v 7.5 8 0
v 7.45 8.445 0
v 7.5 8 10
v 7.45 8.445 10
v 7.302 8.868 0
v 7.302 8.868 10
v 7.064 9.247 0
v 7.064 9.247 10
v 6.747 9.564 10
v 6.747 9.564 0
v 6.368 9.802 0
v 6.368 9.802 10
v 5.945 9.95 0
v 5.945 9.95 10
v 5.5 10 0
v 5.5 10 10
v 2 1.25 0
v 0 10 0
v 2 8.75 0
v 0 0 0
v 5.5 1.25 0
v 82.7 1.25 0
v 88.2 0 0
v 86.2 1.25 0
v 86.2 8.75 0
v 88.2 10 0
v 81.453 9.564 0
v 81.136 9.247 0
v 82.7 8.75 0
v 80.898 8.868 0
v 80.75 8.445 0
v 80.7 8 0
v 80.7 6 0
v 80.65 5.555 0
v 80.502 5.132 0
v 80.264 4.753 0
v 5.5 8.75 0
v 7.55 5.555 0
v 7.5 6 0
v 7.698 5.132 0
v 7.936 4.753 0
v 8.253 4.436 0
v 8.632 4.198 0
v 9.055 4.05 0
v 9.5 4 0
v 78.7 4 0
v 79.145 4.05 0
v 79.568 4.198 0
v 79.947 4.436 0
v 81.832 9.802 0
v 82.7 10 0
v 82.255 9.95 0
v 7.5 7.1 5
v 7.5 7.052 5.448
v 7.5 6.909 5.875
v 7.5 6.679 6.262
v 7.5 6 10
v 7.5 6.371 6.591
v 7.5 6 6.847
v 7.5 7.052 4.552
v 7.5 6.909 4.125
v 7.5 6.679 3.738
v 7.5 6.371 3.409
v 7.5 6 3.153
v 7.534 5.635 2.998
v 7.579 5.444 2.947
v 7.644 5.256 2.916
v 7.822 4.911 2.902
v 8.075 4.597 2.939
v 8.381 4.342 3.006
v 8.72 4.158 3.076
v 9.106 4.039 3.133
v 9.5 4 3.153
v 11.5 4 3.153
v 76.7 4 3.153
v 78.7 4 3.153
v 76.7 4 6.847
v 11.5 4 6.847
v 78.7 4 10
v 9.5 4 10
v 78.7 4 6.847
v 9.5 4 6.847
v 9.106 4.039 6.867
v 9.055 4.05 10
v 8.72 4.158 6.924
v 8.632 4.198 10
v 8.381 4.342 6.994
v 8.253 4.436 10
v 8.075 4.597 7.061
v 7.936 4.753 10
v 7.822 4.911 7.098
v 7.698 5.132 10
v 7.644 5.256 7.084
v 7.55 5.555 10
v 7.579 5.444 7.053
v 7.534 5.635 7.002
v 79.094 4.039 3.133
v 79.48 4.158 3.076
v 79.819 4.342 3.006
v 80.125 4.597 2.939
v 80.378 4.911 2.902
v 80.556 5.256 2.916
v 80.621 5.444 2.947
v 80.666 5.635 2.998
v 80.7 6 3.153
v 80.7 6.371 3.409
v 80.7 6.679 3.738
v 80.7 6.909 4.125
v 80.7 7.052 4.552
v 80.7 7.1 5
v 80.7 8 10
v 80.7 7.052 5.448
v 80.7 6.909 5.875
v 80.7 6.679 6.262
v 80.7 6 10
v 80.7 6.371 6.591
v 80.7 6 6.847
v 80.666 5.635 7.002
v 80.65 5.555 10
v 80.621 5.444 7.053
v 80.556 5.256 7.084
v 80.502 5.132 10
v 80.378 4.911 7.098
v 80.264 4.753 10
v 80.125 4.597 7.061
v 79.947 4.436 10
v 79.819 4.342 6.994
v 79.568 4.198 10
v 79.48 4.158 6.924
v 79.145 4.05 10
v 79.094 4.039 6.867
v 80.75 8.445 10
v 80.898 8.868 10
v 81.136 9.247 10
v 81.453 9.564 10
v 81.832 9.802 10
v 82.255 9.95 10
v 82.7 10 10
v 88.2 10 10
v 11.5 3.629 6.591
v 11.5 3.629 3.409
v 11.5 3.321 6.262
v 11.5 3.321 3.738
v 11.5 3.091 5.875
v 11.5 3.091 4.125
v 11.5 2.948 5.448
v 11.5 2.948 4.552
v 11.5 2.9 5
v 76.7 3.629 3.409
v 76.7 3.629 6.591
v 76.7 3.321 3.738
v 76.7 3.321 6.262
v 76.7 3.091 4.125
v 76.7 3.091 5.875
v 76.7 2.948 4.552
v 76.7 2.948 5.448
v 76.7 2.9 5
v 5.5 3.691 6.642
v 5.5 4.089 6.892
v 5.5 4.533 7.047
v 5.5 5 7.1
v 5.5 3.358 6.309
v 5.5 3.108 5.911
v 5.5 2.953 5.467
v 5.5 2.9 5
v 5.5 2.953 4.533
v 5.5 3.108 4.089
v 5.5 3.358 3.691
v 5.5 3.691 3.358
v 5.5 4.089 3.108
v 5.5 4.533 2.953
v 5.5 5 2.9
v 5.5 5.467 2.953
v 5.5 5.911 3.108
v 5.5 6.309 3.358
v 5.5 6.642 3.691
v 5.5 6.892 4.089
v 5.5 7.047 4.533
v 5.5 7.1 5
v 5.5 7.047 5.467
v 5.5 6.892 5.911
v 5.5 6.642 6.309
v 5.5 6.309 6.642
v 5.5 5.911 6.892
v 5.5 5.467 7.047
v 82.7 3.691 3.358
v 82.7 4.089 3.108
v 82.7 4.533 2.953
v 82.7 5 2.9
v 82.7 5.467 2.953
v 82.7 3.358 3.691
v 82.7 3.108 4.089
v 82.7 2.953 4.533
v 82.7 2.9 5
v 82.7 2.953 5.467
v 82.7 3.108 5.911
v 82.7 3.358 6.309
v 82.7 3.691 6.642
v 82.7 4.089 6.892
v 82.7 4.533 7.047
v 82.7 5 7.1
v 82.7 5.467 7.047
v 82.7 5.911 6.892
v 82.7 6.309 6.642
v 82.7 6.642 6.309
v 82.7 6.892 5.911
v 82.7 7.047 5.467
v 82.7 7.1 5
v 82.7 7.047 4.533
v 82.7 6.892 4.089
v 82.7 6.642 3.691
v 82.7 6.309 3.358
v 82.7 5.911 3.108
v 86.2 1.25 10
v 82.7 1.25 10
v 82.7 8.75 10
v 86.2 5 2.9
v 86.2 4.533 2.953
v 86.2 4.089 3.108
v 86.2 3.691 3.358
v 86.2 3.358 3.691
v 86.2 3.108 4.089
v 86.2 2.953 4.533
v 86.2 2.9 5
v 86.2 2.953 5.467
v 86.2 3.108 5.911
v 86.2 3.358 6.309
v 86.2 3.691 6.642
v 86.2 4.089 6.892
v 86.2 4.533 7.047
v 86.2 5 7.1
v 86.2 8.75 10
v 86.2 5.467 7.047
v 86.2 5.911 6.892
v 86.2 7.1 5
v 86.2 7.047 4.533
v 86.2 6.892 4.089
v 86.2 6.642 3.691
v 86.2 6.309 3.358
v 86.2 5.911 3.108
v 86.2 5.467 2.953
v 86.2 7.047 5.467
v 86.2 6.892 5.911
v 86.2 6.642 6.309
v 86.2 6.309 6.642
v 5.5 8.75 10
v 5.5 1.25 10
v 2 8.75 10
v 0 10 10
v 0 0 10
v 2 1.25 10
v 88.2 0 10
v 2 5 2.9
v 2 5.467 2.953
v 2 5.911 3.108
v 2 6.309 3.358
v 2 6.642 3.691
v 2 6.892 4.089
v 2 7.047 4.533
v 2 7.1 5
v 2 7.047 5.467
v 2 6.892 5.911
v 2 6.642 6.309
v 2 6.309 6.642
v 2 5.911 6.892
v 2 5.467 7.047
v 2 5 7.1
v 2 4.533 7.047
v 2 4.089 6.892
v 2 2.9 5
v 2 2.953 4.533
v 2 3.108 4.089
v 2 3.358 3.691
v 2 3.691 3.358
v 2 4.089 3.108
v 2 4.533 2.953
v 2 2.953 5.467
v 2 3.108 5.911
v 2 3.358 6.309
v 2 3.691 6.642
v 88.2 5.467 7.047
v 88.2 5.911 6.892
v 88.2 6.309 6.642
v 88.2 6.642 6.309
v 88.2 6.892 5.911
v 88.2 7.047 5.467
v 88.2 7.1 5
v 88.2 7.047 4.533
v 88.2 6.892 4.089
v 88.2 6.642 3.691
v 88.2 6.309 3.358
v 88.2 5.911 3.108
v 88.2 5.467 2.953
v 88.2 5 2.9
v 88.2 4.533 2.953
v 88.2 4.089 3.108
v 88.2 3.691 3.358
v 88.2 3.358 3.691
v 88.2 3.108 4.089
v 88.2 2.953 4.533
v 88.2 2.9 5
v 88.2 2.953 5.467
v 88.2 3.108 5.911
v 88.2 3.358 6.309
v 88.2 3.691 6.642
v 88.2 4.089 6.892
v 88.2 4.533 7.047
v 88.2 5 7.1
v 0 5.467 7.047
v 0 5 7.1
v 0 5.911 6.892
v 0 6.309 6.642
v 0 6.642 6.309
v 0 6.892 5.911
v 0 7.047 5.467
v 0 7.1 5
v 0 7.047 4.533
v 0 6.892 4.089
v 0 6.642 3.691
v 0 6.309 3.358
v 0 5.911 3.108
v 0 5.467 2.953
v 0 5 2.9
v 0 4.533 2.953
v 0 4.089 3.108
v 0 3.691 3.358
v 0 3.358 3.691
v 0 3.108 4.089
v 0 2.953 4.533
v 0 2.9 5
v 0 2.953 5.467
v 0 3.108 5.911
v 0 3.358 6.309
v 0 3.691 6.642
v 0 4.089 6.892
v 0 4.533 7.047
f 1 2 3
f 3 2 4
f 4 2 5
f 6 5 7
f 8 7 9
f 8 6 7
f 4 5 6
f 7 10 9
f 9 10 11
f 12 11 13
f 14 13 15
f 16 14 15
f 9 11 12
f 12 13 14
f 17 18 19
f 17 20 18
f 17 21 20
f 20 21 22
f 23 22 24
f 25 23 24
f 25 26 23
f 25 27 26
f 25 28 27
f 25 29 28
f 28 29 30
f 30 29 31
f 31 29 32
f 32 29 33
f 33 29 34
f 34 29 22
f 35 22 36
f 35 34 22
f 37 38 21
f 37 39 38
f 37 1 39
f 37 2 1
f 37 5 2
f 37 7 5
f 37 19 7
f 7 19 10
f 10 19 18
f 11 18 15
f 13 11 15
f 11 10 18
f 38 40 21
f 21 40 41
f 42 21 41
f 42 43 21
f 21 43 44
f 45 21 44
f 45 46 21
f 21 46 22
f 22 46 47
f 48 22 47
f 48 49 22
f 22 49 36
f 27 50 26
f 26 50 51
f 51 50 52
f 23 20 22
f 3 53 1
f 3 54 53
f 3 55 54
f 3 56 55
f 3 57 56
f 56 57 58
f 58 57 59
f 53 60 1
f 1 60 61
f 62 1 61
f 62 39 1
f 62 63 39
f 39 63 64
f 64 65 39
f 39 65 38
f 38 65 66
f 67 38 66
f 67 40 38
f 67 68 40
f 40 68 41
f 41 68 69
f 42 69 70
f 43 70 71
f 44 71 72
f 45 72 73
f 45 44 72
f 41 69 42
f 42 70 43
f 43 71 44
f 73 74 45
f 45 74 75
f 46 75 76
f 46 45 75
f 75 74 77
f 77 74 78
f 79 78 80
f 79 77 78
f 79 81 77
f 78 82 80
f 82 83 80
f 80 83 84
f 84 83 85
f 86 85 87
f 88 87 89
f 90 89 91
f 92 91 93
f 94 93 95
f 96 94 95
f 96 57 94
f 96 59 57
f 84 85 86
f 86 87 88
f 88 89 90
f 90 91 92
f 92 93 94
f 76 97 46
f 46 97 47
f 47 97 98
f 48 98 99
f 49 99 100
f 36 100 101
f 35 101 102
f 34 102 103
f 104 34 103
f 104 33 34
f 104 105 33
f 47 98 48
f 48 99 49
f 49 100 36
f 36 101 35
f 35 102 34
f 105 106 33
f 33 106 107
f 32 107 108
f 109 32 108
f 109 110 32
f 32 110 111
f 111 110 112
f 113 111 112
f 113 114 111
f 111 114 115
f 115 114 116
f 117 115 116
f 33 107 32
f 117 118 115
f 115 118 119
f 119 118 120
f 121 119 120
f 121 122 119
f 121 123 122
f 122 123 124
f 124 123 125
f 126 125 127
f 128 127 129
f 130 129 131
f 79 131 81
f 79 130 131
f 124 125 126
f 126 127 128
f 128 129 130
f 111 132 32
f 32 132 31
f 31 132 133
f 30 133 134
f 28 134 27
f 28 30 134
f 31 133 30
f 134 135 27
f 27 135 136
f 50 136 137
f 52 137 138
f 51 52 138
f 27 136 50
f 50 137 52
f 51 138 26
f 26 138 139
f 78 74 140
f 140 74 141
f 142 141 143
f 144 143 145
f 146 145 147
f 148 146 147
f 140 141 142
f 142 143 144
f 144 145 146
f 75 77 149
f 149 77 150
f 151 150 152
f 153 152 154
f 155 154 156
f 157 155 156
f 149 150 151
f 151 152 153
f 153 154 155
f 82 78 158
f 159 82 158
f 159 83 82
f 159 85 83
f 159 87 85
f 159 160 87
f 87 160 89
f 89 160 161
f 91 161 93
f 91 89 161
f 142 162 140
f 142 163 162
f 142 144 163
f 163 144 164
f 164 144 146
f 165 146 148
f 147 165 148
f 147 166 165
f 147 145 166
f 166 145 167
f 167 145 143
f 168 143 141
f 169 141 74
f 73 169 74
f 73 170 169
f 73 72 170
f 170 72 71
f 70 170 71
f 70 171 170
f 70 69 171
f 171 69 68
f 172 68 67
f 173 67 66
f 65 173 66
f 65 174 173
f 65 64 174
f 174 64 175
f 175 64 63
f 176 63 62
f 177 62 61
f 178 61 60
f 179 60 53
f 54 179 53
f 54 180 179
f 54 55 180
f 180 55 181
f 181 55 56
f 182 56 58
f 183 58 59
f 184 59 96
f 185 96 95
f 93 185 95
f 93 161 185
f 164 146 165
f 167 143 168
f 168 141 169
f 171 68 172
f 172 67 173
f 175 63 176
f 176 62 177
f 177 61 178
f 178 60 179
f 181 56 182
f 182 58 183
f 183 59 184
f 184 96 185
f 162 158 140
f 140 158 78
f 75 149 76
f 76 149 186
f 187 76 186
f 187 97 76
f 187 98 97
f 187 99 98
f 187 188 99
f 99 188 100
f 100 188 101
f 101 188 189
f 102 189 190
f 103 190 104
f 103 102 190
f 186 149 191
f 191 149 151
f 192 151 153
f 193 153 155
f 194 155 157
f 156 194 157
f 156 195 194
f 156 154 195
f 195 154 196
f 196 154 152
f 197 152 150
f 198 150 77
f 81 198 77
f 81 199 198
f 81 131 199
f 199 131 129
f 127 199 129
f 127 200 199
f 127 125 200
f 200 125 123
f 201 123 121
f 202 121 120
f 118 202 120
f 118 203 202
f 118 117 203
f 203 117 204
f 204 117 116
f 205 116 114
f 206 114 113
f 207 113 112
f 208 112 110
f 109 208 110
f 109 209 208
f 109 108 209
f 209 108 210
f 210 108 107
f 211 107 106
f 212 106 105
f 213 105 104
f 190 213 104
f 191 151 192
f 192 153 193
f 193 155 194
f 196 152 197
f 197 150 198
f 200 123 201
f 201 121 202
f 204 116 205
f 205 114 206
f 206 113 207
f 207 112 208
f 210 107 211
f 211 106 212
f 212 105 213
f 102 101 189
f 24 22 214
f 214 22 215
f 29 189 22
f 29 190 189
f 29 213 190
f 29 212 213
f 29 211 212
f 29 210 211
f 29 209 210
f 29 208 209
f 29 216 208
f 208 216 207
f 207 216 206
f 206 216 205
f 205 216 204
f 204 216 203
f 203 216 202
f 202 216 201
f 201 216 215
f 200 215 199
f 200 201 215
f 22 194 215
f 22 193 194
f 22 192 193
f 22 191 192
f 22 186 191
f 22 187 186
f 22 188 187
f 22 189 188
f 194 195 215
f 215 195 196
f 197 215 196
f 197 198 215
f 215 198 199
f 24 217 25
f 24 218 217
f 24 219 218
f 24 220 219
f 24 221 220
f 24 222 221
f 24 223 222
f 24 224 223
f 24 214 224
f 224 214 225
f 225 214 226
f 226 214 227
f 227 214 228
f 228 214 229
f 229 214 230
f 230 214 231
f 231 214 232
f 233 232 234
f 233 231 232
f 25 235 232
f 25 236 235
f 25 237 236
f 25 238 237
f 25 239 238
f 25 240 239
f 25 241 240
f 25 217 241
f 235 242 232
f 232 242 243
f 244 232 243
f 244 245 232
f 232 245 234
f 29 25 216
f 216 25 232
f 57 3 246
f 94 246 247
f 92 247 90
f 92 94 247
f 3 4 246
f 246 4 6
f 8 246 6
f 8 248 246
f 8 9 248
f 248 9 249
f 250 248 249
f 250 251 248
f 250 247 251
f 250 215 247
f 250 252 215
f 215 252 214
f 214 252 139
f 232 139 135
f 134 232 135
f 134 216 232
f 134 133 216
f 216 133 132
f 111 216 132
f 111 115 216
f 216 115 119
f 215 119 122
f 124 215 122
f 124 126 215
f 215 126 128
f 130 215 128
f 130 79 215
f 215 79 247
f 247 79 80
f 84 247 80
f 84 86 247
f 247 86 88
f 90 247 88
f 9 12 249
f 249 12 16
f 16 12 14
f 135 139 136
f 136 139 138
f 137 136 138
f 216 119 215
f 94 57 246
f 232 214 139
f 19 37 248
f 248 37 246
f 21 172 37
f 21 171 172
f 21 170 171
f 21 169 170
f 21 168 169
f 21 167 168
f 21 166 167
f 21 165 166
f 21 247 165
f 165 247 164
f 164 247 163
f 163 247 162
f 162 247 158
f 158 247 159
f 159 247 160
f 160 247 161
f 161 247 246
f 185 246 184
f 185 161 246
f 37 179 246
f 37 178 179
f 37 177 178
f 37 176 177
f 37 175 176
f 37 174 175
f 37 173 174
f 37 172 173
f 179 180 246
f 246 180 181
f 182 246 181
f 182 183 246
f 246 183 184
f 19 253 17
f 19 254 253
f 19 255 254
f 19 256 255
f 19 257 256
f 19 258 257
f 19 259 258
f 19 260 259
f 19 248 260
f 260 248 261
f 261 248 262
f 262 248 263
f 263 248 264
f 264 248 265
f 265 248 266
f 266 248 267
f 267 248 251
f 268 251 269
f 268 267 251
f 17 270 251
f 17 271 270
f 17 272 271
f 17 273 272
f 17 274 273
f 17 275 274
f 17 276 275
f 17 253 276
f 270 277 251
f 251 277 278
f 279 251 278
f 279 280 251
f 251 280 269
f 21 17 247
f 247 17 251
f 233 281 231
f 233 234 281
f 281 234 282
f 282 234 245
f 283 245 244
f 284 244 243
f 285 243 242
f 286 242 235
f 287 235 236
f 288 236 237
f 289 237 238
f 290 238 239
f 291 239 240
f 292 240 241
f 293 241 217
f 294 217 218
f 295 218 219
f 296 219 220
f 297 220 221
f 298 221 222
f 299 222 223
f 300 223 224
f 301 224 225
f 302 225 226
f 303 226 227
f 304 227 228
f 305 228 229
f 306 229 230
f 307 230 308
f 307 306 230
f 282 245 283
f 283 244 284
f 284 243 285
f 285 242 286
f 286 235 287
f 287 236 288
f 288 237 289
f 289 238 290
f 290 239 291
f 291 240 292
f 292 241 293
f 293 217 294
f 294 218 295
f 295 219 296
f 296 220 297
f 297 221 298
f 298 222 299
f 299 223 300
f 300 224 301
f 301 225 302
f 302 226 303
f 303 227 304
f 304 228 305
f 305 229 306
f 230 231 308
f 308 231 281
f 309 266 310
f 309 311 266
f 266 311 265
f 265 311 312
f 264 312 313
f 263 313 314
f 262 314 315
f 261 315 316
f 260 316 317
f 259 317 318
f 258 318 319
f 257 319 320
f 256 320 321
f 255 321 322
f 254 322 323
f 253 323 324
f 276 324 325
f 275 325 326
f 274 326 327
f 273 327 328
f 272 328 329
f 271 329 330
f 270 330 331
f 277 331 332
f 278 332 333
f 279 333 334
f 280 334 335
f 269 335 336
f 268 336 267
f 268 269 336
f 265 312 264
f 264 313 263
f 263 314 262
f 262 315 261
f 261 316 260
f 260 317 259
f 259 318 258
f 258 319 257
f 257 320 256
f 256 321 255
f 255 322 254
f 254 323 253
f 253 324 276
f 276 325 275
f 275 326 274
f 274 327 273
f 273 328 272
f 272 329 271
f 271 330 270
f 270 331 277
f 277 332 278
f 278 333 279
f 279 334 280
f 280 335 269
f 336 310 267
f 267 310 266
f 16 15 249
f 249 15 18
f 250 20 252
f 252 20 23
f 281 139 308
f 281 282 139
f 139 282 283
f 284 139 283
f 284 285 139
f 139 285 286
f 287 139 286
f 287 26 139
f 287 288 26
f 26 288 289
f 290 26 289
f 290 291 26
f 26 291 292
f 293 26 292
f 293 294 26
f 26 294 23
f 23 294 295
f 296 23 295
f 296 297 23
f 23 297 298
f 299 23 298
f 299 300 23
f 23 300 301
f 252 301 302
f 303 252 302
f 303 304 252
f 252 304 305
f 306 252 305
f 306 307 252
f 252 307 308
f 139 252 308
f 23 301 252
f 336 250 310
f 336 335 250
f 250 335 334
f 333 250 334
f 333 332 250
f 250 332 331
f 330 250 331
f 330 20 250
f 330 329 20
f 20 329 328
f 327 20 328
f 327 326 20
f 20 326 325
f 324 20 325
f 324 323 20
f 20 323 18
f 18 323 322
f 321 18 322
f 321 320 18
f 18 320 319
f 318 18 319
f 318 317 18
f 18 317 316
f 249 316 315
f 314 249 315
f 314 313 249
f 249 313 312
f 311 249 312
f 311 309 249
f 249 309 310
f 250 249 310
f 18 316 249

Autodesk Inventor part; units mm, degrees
ref_plane "YZ Plane" through (0, 0, 0) normal (1, 0, 0) x (0, 1, 0)
ref_plane "XZ Plane" through (0, 0, 0) normal (0, 1, 0) x (-1, 0, 0)
sketch "Sketch11" plane through (0, 0, 0) normal (1, 0, 0) x (0, 1, 0)
  line L0 (0, 0) -> (10, 0)
  line L1 (10, 0) -> (10, 10)
  line L2 (10, 10) -> (0, 10)
  line L3 (0, 10) -> (0, 0)
  dimension "d27" = 10
  dimension "d28" = 10
extrude "Extrusion8" add sketch "Sketch11" along normal blind 88.2
sketch "Sketch12" plane through (0, 0, 0) normal (-1, 0, 0) x (0, 0, 1)
  circle A0 centre (5, 5) radius 2.1
  dimension "d31" = 4.2
extrude "Extrusion9" cut sketch "Sketch12" against normal blind 88.2
sketch "Sketch13" plane through (0, 0, 10) normal (0, 0, 1) x (1, 0, 0)
  line L0 (0, 10) -> (0, 0) projected
  line L1 (0, 10) -> (88.2, 10) projected
  line L2 (10, 10) -> (78.2, 10)
  line L3 (78.2, 10) -> (78.2, 4)
  line L4 (78.2, 4) -> (10, 4)
  line L5 (10, 4) -> (10, 10)
  dimension "d34" = 68.2
  dimension "d35" = 6
  dimension "d36" = 10
extrude "Extrusion10" cut sketch "Sketch13" against normal blind 88.2
sketch "Sketch14" plane through (0, 0, 10) normal (0, 0, 1) x (1, 0, 0)
  line L0 (0, 10) -> (10, 10) projected
  line L1 (0, 10) -> (0, 0) projected
  line L2 (2, 8.75) -> (5.5, 8.75)
  line L3 (5.5, 8.75) -> (5.5, 1.25)
  line L4 (5.5, 1.25) -> (2, 1.25)
  line L5 (2, 1.25) -> (2, 8.75)
  line L6 (10, 10) -> (7.5, 10)
  line L7 (7.5, 10) -> (7.5, 4)
  line L8 (7.5, 4) -> (10, 4)
  line L9 (10, 4) -> (10, 10)
  dimension "d39" = 3.5
  dimension "d40" = 7.5
  dimension "d41" = 1.25
  dimension "d42" = 2
  dimension "d43" = 2
extrude "Extrusion11" cut sketch "Sketch14" against normal blind 88.2
ref_plane "Work Plane5" through (44.1, 0, 0) normal (1, 0, 0) x (0, 0, -1)
mirror "Mirror4" about plane through (44.1, 0, 0) normal (1, 0, 0) of "Extrusion11", "Extrusion10"
sketch "Sketch15" plane through (7.5, 4, 3.1534) normal (0, 1, 0) x (1, 0, 0)
  line L0 (0, 0) -> (0, 3.1534) projected
  line L1 (4, 1.5767) -> (69.2, 1.5767)
  line L2 (69.2, 1.5767) -> (69.2, -5.2793)
  line L3 (69.2, -5.2793) -> (4, -5.2793)
  line L4 (4, -5.2793) -> (4, 1.5767)
  point P0 (-7.5, 3.1534)
  dimension "d47" = 65.2
  dimension "d48" = 4
extrude "Extrusion12" add sketch "Sketch15" against normal blind 3
fillet "Fillet2" radius 2 6 edges at (80.7, 10, 5) (80.7, 4, 8.4233) (80.7, 4, 1.5767) (7.5, 4, 1.5767) (7.5, 4, 8.4233) (7.5, 10, 5)
properties part number "BaseSlat"
